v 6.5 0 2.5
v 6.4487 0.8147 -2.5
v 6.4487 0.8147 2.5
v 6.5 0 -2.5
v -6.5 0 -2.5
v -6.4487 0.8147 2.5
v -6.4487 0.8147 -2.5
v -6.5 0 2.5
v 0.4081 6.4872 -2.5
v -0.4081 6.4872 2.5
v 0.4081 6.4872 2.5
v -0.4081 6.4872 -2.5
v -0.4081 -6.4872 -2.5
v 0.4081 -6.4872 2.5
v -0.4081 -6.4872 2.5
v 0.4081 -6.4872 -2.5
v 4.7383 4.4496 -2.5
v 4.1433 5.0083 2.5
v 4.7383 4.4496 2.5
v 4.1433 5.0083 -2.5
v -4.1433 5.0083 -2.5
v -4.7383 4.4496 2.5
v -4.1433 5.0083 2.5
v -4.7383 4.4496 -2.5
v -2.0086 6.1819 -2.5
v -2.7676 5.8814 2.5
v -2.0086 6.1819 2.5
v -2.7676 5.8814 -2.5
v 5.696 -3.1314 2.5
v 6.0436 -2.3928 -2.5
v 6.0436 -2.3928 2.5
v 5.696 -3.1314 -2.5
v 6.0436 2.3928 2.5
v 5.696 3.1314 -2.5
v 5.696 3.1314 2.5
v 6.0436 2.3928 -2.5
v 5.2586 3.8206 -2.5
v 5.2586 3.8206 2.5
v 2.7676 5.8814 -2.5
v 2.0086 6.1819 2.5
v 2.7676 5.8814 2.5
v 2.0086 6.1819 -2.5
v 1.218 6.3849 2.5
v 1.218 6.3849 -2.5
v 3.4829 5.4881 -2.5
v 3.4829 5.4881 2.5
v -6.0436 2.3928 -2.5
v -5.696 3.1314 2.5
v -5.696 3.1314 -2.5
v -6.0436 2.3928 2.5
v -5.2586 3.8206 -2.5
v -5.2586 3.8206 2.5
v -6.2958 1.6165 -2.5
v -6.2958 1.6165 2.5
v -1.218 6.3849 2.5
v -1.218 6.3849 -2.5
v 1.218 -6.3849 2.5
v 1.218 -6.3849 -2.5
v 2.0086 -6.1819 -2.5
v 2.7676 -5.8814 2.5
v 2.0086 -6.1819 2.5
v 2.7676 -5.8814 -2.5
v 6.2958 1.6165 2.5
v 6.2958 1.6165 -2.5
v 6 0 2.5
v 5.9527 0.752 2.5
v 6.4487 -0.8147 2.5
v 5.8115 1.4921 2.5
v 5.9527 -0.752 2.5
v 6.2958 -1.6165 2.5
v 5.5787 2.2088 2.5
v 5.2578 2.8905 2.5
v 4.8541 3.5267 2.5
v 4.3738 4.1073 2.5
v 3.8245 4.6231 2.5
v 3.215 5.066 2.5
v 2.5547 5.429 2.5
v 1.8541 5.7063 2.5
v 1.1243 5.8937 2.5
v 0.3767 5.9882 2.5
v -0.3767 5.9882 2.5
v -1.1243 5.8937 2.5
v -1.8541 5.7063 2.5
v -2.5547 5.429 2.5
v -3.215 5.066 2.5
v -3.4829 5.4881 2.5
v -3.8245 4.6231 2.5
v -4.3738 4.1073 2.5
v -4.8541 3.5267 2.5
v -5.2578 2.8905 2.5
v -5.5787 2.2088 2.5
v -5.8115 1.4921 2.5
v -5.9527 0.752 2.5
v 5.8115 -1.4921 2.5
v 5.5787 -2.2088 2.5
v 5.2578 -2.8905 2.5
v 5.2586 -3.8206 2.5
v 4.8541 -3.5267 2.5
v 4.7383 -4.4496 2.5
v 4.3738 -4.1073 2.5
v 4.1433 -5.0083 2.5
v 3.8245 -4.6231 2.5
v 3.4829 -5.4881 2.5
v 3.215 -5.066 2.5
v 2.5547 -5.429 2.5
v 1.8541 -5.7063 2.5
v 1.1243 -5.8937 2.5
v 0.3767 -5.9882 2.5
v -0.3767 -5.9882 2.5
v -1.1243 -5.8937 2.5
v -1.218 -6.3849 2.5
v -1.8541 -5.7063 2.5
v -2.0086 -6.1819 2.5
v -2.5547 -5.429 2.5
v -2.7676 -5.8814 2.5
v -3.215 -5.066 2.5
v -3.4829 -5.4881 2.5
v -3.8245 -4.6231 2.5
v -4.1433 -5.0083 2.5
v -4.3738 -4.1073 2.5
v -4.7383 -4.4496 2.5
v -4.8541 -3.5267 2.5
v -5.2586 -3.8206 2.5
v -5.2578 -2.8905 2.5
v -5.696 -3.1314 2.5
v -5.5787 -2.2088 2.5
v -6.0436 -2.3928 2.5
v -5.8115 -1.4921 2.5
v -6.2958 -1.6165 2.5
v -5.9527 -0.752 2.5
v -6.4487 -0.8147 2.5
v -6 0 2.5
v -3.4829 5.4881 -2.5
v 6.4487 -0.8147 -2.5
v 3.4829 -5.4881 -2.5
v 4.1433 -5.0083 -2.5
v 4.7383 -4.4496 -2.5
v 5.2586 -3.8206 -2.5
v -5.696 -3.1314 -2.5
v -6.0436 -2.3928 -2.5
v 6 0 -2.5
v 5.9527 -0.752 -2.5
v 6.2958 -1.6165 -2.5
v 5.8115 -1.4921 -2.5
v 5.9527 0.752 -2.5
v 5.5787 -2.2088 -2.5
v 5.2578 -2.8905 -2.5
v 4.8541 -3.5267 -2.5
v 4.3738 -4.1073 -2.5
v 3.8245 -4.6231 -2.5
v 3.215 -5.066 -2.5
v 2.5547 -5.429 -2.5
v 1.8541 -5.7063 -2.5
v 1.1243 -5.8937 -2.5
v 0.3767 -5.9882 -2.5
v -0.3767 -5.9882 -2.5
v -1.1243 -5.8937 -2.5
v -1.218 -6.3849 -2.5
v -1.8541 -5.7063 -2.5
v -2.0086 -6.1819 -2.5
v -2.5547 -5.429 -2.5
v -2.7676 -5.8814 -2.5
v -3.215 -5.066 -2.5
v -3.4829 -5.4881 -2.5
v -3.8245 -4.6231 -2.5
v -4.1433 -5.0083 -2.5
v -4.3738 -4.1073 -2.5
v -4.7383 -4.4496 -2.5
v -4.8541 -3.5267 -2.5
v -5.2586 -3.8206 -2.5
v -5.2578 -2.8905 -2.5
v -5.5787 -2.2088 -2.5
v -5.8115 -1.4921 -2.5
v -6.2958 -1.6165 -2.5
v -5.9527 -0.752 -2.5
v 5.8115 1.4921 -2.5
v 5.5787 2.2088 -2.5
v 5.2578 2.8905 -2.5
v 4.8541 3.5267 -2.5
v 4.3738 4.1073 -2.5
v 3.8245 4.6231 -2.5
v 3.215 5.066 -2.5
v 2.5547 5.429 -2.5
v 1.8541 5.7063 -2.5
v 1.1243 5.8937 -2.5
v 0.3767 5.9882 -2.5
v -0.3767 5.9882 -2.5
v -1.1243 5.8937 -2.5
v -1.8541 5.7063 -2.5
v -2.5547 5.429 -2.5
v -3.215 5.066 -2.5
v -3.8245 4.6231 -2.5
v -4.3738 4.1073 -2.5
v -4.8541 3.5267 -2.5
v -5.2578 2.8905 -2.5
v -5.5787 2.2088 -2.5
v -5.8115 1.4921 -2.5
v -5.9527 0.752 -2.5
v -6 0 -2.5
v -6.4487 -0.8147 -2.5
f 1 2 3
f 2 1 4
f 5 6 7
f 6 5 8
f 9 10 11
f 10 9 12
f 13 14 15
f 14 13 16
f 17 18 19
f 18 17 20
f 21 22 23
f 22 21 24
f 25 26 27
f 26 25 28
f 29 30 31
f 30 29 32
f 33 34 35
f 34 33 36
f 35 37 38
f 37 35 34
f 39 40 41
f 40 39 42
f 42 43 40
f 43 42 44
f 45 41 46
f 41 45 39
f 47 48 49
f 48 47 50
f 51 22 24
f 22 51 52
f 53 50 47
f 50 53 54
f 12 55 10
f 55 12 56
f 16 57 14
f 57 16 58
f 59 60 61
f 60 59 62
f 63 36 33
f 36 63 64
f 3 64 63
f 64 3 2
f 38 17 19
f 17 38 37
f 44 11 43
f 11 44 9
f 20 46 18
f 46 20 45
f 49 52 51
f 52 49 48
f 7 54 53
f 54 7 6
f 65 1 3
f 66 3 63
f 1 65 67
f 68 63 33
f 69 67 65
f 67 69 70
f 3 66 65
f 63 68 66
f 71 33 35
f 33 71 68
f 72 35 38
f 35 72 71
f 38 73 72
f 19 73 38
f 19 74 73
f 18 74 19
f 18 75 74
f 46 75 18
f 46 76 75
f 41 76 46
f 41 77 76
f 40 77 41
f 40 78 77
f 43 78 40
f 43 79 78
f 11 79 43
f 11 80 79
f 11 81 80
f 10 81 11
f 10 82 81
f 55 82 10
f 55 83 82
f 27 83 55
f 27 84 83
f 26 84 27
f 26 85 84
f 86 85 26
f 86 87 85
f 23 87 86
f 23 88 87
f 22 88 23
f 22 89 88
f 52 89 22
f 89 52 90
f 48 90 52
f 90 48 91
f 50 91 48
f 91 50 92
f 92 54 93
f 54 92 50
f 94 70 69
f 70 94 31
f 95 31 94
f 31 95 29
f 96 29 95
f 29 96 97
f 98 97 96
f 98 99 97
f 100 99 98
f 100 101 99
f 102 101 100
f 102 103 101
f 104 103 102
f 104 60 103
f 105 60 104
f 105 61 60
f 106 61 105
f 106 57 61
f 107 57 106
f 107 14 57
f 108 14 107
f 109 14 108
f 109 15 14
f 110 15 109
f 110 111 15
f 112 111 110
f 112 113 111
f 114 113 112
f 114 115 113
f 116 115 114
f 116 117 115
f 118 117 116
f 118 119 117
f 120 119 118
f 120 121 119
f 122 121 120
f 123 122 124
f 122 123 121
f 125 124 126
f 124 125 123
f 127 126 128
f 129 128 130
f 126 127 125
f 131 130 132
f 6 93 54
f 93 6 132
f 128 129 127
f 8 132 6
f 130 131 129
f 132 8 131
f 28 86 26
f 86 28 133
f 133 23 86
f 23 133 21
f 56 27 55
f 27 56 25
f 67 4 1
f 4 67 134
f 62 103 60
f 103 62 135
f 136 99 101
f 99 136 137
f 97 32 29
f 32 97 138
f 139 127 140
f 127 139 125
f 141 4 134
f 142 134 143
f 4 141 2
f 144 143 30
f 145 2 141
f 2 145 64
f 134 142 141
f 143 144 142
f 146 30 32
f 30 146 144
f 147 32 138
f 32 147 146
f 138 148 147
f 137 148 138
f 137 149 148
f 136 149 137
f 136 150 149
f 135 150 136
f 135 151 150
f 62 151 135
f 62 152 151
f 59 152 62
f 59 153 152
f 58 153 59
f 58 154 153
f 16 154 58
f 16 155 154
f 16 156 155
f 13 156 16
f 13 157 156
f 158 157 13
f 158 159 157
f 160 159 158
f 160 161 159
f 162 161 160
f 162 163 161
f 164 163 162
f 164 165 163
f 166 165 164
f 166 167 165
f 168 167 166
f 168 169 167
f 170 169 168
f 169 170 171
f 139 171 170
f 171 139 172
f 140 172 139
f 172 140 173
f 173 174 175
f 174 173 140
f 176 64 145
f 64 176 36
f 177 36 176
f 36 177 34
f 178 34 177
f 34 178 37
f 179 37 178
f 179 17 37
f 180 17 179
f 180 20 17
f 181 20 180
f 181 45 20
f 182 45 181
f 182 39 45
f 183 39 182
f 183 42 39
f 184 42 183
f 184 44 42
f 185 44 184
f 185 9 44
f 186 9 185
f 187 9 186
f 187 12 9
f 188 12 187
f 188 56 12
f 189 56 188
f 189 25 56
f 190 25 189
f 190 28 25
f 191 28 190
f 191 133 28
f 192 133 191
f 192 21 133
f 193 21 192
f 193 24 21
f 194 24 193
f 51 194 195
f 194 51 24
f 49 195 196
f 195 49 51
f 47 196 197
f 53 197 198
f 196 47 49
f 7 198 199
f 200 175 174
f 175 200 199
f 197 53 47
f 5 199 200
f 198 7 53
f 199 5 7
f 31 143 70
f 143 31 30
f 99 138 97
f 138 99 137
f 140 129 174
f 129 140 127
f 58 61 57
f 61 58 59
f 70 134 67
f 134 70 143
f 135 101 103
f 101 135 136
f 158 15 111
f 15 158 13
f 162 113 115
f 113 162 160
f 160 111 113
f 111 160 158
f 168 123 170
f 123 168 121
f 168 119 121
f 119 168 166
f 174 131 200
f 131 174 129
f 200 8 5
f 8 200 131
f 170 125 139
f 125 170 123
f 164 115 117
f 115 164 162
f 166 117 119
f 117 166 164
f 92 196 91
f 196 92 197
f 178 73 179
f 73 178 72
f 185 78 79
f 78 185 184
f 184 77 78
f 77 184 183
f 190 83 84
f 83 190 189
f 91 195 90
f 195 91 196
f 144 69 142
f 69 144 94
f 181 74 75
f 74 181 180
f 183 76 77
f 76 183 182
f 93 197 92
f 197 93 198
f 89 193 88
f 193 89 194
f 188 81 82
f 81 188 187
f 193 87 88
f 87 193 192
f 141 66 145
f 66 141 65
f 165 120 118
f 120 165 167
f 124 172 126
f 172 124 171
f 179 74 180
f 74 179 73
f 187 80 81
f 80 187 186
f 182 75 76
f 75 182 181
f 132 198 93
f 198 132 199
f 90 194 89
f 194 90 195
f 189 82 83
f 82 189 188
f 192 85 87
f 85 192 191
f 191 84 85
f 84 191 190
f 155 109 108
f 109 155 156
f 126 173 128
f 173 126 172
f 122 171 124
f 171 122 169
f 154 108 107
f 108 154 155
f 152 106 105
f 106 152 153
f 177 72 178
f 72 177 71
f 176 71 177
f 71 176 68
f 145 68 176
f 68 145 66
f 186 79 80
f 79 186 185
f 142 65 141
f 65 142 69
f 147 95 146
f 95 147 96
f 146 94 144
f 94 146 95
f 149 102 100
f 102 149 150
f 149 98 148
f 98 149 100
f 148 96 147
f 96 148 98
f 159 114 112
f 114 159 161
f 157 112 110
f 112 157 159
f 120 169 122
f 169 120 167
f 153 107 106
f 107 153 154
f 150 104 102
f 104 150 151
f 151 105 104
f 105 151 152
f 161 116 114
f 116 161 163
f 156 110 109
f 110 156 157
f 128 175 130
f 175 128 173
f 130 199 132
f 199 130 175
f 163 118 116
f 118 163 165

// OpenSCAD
$fn = 50;


difference() {
	union() {
		translate(v = [0, 0, -2.5000000000]) {
			cylinder(h = 5, r = 6.5000000000);
		}
	}
	union() {
		translate(v = [0, 0, -100.0000000000]) {
			cylinder(h = 200, r = 6);
		}
	}
}
